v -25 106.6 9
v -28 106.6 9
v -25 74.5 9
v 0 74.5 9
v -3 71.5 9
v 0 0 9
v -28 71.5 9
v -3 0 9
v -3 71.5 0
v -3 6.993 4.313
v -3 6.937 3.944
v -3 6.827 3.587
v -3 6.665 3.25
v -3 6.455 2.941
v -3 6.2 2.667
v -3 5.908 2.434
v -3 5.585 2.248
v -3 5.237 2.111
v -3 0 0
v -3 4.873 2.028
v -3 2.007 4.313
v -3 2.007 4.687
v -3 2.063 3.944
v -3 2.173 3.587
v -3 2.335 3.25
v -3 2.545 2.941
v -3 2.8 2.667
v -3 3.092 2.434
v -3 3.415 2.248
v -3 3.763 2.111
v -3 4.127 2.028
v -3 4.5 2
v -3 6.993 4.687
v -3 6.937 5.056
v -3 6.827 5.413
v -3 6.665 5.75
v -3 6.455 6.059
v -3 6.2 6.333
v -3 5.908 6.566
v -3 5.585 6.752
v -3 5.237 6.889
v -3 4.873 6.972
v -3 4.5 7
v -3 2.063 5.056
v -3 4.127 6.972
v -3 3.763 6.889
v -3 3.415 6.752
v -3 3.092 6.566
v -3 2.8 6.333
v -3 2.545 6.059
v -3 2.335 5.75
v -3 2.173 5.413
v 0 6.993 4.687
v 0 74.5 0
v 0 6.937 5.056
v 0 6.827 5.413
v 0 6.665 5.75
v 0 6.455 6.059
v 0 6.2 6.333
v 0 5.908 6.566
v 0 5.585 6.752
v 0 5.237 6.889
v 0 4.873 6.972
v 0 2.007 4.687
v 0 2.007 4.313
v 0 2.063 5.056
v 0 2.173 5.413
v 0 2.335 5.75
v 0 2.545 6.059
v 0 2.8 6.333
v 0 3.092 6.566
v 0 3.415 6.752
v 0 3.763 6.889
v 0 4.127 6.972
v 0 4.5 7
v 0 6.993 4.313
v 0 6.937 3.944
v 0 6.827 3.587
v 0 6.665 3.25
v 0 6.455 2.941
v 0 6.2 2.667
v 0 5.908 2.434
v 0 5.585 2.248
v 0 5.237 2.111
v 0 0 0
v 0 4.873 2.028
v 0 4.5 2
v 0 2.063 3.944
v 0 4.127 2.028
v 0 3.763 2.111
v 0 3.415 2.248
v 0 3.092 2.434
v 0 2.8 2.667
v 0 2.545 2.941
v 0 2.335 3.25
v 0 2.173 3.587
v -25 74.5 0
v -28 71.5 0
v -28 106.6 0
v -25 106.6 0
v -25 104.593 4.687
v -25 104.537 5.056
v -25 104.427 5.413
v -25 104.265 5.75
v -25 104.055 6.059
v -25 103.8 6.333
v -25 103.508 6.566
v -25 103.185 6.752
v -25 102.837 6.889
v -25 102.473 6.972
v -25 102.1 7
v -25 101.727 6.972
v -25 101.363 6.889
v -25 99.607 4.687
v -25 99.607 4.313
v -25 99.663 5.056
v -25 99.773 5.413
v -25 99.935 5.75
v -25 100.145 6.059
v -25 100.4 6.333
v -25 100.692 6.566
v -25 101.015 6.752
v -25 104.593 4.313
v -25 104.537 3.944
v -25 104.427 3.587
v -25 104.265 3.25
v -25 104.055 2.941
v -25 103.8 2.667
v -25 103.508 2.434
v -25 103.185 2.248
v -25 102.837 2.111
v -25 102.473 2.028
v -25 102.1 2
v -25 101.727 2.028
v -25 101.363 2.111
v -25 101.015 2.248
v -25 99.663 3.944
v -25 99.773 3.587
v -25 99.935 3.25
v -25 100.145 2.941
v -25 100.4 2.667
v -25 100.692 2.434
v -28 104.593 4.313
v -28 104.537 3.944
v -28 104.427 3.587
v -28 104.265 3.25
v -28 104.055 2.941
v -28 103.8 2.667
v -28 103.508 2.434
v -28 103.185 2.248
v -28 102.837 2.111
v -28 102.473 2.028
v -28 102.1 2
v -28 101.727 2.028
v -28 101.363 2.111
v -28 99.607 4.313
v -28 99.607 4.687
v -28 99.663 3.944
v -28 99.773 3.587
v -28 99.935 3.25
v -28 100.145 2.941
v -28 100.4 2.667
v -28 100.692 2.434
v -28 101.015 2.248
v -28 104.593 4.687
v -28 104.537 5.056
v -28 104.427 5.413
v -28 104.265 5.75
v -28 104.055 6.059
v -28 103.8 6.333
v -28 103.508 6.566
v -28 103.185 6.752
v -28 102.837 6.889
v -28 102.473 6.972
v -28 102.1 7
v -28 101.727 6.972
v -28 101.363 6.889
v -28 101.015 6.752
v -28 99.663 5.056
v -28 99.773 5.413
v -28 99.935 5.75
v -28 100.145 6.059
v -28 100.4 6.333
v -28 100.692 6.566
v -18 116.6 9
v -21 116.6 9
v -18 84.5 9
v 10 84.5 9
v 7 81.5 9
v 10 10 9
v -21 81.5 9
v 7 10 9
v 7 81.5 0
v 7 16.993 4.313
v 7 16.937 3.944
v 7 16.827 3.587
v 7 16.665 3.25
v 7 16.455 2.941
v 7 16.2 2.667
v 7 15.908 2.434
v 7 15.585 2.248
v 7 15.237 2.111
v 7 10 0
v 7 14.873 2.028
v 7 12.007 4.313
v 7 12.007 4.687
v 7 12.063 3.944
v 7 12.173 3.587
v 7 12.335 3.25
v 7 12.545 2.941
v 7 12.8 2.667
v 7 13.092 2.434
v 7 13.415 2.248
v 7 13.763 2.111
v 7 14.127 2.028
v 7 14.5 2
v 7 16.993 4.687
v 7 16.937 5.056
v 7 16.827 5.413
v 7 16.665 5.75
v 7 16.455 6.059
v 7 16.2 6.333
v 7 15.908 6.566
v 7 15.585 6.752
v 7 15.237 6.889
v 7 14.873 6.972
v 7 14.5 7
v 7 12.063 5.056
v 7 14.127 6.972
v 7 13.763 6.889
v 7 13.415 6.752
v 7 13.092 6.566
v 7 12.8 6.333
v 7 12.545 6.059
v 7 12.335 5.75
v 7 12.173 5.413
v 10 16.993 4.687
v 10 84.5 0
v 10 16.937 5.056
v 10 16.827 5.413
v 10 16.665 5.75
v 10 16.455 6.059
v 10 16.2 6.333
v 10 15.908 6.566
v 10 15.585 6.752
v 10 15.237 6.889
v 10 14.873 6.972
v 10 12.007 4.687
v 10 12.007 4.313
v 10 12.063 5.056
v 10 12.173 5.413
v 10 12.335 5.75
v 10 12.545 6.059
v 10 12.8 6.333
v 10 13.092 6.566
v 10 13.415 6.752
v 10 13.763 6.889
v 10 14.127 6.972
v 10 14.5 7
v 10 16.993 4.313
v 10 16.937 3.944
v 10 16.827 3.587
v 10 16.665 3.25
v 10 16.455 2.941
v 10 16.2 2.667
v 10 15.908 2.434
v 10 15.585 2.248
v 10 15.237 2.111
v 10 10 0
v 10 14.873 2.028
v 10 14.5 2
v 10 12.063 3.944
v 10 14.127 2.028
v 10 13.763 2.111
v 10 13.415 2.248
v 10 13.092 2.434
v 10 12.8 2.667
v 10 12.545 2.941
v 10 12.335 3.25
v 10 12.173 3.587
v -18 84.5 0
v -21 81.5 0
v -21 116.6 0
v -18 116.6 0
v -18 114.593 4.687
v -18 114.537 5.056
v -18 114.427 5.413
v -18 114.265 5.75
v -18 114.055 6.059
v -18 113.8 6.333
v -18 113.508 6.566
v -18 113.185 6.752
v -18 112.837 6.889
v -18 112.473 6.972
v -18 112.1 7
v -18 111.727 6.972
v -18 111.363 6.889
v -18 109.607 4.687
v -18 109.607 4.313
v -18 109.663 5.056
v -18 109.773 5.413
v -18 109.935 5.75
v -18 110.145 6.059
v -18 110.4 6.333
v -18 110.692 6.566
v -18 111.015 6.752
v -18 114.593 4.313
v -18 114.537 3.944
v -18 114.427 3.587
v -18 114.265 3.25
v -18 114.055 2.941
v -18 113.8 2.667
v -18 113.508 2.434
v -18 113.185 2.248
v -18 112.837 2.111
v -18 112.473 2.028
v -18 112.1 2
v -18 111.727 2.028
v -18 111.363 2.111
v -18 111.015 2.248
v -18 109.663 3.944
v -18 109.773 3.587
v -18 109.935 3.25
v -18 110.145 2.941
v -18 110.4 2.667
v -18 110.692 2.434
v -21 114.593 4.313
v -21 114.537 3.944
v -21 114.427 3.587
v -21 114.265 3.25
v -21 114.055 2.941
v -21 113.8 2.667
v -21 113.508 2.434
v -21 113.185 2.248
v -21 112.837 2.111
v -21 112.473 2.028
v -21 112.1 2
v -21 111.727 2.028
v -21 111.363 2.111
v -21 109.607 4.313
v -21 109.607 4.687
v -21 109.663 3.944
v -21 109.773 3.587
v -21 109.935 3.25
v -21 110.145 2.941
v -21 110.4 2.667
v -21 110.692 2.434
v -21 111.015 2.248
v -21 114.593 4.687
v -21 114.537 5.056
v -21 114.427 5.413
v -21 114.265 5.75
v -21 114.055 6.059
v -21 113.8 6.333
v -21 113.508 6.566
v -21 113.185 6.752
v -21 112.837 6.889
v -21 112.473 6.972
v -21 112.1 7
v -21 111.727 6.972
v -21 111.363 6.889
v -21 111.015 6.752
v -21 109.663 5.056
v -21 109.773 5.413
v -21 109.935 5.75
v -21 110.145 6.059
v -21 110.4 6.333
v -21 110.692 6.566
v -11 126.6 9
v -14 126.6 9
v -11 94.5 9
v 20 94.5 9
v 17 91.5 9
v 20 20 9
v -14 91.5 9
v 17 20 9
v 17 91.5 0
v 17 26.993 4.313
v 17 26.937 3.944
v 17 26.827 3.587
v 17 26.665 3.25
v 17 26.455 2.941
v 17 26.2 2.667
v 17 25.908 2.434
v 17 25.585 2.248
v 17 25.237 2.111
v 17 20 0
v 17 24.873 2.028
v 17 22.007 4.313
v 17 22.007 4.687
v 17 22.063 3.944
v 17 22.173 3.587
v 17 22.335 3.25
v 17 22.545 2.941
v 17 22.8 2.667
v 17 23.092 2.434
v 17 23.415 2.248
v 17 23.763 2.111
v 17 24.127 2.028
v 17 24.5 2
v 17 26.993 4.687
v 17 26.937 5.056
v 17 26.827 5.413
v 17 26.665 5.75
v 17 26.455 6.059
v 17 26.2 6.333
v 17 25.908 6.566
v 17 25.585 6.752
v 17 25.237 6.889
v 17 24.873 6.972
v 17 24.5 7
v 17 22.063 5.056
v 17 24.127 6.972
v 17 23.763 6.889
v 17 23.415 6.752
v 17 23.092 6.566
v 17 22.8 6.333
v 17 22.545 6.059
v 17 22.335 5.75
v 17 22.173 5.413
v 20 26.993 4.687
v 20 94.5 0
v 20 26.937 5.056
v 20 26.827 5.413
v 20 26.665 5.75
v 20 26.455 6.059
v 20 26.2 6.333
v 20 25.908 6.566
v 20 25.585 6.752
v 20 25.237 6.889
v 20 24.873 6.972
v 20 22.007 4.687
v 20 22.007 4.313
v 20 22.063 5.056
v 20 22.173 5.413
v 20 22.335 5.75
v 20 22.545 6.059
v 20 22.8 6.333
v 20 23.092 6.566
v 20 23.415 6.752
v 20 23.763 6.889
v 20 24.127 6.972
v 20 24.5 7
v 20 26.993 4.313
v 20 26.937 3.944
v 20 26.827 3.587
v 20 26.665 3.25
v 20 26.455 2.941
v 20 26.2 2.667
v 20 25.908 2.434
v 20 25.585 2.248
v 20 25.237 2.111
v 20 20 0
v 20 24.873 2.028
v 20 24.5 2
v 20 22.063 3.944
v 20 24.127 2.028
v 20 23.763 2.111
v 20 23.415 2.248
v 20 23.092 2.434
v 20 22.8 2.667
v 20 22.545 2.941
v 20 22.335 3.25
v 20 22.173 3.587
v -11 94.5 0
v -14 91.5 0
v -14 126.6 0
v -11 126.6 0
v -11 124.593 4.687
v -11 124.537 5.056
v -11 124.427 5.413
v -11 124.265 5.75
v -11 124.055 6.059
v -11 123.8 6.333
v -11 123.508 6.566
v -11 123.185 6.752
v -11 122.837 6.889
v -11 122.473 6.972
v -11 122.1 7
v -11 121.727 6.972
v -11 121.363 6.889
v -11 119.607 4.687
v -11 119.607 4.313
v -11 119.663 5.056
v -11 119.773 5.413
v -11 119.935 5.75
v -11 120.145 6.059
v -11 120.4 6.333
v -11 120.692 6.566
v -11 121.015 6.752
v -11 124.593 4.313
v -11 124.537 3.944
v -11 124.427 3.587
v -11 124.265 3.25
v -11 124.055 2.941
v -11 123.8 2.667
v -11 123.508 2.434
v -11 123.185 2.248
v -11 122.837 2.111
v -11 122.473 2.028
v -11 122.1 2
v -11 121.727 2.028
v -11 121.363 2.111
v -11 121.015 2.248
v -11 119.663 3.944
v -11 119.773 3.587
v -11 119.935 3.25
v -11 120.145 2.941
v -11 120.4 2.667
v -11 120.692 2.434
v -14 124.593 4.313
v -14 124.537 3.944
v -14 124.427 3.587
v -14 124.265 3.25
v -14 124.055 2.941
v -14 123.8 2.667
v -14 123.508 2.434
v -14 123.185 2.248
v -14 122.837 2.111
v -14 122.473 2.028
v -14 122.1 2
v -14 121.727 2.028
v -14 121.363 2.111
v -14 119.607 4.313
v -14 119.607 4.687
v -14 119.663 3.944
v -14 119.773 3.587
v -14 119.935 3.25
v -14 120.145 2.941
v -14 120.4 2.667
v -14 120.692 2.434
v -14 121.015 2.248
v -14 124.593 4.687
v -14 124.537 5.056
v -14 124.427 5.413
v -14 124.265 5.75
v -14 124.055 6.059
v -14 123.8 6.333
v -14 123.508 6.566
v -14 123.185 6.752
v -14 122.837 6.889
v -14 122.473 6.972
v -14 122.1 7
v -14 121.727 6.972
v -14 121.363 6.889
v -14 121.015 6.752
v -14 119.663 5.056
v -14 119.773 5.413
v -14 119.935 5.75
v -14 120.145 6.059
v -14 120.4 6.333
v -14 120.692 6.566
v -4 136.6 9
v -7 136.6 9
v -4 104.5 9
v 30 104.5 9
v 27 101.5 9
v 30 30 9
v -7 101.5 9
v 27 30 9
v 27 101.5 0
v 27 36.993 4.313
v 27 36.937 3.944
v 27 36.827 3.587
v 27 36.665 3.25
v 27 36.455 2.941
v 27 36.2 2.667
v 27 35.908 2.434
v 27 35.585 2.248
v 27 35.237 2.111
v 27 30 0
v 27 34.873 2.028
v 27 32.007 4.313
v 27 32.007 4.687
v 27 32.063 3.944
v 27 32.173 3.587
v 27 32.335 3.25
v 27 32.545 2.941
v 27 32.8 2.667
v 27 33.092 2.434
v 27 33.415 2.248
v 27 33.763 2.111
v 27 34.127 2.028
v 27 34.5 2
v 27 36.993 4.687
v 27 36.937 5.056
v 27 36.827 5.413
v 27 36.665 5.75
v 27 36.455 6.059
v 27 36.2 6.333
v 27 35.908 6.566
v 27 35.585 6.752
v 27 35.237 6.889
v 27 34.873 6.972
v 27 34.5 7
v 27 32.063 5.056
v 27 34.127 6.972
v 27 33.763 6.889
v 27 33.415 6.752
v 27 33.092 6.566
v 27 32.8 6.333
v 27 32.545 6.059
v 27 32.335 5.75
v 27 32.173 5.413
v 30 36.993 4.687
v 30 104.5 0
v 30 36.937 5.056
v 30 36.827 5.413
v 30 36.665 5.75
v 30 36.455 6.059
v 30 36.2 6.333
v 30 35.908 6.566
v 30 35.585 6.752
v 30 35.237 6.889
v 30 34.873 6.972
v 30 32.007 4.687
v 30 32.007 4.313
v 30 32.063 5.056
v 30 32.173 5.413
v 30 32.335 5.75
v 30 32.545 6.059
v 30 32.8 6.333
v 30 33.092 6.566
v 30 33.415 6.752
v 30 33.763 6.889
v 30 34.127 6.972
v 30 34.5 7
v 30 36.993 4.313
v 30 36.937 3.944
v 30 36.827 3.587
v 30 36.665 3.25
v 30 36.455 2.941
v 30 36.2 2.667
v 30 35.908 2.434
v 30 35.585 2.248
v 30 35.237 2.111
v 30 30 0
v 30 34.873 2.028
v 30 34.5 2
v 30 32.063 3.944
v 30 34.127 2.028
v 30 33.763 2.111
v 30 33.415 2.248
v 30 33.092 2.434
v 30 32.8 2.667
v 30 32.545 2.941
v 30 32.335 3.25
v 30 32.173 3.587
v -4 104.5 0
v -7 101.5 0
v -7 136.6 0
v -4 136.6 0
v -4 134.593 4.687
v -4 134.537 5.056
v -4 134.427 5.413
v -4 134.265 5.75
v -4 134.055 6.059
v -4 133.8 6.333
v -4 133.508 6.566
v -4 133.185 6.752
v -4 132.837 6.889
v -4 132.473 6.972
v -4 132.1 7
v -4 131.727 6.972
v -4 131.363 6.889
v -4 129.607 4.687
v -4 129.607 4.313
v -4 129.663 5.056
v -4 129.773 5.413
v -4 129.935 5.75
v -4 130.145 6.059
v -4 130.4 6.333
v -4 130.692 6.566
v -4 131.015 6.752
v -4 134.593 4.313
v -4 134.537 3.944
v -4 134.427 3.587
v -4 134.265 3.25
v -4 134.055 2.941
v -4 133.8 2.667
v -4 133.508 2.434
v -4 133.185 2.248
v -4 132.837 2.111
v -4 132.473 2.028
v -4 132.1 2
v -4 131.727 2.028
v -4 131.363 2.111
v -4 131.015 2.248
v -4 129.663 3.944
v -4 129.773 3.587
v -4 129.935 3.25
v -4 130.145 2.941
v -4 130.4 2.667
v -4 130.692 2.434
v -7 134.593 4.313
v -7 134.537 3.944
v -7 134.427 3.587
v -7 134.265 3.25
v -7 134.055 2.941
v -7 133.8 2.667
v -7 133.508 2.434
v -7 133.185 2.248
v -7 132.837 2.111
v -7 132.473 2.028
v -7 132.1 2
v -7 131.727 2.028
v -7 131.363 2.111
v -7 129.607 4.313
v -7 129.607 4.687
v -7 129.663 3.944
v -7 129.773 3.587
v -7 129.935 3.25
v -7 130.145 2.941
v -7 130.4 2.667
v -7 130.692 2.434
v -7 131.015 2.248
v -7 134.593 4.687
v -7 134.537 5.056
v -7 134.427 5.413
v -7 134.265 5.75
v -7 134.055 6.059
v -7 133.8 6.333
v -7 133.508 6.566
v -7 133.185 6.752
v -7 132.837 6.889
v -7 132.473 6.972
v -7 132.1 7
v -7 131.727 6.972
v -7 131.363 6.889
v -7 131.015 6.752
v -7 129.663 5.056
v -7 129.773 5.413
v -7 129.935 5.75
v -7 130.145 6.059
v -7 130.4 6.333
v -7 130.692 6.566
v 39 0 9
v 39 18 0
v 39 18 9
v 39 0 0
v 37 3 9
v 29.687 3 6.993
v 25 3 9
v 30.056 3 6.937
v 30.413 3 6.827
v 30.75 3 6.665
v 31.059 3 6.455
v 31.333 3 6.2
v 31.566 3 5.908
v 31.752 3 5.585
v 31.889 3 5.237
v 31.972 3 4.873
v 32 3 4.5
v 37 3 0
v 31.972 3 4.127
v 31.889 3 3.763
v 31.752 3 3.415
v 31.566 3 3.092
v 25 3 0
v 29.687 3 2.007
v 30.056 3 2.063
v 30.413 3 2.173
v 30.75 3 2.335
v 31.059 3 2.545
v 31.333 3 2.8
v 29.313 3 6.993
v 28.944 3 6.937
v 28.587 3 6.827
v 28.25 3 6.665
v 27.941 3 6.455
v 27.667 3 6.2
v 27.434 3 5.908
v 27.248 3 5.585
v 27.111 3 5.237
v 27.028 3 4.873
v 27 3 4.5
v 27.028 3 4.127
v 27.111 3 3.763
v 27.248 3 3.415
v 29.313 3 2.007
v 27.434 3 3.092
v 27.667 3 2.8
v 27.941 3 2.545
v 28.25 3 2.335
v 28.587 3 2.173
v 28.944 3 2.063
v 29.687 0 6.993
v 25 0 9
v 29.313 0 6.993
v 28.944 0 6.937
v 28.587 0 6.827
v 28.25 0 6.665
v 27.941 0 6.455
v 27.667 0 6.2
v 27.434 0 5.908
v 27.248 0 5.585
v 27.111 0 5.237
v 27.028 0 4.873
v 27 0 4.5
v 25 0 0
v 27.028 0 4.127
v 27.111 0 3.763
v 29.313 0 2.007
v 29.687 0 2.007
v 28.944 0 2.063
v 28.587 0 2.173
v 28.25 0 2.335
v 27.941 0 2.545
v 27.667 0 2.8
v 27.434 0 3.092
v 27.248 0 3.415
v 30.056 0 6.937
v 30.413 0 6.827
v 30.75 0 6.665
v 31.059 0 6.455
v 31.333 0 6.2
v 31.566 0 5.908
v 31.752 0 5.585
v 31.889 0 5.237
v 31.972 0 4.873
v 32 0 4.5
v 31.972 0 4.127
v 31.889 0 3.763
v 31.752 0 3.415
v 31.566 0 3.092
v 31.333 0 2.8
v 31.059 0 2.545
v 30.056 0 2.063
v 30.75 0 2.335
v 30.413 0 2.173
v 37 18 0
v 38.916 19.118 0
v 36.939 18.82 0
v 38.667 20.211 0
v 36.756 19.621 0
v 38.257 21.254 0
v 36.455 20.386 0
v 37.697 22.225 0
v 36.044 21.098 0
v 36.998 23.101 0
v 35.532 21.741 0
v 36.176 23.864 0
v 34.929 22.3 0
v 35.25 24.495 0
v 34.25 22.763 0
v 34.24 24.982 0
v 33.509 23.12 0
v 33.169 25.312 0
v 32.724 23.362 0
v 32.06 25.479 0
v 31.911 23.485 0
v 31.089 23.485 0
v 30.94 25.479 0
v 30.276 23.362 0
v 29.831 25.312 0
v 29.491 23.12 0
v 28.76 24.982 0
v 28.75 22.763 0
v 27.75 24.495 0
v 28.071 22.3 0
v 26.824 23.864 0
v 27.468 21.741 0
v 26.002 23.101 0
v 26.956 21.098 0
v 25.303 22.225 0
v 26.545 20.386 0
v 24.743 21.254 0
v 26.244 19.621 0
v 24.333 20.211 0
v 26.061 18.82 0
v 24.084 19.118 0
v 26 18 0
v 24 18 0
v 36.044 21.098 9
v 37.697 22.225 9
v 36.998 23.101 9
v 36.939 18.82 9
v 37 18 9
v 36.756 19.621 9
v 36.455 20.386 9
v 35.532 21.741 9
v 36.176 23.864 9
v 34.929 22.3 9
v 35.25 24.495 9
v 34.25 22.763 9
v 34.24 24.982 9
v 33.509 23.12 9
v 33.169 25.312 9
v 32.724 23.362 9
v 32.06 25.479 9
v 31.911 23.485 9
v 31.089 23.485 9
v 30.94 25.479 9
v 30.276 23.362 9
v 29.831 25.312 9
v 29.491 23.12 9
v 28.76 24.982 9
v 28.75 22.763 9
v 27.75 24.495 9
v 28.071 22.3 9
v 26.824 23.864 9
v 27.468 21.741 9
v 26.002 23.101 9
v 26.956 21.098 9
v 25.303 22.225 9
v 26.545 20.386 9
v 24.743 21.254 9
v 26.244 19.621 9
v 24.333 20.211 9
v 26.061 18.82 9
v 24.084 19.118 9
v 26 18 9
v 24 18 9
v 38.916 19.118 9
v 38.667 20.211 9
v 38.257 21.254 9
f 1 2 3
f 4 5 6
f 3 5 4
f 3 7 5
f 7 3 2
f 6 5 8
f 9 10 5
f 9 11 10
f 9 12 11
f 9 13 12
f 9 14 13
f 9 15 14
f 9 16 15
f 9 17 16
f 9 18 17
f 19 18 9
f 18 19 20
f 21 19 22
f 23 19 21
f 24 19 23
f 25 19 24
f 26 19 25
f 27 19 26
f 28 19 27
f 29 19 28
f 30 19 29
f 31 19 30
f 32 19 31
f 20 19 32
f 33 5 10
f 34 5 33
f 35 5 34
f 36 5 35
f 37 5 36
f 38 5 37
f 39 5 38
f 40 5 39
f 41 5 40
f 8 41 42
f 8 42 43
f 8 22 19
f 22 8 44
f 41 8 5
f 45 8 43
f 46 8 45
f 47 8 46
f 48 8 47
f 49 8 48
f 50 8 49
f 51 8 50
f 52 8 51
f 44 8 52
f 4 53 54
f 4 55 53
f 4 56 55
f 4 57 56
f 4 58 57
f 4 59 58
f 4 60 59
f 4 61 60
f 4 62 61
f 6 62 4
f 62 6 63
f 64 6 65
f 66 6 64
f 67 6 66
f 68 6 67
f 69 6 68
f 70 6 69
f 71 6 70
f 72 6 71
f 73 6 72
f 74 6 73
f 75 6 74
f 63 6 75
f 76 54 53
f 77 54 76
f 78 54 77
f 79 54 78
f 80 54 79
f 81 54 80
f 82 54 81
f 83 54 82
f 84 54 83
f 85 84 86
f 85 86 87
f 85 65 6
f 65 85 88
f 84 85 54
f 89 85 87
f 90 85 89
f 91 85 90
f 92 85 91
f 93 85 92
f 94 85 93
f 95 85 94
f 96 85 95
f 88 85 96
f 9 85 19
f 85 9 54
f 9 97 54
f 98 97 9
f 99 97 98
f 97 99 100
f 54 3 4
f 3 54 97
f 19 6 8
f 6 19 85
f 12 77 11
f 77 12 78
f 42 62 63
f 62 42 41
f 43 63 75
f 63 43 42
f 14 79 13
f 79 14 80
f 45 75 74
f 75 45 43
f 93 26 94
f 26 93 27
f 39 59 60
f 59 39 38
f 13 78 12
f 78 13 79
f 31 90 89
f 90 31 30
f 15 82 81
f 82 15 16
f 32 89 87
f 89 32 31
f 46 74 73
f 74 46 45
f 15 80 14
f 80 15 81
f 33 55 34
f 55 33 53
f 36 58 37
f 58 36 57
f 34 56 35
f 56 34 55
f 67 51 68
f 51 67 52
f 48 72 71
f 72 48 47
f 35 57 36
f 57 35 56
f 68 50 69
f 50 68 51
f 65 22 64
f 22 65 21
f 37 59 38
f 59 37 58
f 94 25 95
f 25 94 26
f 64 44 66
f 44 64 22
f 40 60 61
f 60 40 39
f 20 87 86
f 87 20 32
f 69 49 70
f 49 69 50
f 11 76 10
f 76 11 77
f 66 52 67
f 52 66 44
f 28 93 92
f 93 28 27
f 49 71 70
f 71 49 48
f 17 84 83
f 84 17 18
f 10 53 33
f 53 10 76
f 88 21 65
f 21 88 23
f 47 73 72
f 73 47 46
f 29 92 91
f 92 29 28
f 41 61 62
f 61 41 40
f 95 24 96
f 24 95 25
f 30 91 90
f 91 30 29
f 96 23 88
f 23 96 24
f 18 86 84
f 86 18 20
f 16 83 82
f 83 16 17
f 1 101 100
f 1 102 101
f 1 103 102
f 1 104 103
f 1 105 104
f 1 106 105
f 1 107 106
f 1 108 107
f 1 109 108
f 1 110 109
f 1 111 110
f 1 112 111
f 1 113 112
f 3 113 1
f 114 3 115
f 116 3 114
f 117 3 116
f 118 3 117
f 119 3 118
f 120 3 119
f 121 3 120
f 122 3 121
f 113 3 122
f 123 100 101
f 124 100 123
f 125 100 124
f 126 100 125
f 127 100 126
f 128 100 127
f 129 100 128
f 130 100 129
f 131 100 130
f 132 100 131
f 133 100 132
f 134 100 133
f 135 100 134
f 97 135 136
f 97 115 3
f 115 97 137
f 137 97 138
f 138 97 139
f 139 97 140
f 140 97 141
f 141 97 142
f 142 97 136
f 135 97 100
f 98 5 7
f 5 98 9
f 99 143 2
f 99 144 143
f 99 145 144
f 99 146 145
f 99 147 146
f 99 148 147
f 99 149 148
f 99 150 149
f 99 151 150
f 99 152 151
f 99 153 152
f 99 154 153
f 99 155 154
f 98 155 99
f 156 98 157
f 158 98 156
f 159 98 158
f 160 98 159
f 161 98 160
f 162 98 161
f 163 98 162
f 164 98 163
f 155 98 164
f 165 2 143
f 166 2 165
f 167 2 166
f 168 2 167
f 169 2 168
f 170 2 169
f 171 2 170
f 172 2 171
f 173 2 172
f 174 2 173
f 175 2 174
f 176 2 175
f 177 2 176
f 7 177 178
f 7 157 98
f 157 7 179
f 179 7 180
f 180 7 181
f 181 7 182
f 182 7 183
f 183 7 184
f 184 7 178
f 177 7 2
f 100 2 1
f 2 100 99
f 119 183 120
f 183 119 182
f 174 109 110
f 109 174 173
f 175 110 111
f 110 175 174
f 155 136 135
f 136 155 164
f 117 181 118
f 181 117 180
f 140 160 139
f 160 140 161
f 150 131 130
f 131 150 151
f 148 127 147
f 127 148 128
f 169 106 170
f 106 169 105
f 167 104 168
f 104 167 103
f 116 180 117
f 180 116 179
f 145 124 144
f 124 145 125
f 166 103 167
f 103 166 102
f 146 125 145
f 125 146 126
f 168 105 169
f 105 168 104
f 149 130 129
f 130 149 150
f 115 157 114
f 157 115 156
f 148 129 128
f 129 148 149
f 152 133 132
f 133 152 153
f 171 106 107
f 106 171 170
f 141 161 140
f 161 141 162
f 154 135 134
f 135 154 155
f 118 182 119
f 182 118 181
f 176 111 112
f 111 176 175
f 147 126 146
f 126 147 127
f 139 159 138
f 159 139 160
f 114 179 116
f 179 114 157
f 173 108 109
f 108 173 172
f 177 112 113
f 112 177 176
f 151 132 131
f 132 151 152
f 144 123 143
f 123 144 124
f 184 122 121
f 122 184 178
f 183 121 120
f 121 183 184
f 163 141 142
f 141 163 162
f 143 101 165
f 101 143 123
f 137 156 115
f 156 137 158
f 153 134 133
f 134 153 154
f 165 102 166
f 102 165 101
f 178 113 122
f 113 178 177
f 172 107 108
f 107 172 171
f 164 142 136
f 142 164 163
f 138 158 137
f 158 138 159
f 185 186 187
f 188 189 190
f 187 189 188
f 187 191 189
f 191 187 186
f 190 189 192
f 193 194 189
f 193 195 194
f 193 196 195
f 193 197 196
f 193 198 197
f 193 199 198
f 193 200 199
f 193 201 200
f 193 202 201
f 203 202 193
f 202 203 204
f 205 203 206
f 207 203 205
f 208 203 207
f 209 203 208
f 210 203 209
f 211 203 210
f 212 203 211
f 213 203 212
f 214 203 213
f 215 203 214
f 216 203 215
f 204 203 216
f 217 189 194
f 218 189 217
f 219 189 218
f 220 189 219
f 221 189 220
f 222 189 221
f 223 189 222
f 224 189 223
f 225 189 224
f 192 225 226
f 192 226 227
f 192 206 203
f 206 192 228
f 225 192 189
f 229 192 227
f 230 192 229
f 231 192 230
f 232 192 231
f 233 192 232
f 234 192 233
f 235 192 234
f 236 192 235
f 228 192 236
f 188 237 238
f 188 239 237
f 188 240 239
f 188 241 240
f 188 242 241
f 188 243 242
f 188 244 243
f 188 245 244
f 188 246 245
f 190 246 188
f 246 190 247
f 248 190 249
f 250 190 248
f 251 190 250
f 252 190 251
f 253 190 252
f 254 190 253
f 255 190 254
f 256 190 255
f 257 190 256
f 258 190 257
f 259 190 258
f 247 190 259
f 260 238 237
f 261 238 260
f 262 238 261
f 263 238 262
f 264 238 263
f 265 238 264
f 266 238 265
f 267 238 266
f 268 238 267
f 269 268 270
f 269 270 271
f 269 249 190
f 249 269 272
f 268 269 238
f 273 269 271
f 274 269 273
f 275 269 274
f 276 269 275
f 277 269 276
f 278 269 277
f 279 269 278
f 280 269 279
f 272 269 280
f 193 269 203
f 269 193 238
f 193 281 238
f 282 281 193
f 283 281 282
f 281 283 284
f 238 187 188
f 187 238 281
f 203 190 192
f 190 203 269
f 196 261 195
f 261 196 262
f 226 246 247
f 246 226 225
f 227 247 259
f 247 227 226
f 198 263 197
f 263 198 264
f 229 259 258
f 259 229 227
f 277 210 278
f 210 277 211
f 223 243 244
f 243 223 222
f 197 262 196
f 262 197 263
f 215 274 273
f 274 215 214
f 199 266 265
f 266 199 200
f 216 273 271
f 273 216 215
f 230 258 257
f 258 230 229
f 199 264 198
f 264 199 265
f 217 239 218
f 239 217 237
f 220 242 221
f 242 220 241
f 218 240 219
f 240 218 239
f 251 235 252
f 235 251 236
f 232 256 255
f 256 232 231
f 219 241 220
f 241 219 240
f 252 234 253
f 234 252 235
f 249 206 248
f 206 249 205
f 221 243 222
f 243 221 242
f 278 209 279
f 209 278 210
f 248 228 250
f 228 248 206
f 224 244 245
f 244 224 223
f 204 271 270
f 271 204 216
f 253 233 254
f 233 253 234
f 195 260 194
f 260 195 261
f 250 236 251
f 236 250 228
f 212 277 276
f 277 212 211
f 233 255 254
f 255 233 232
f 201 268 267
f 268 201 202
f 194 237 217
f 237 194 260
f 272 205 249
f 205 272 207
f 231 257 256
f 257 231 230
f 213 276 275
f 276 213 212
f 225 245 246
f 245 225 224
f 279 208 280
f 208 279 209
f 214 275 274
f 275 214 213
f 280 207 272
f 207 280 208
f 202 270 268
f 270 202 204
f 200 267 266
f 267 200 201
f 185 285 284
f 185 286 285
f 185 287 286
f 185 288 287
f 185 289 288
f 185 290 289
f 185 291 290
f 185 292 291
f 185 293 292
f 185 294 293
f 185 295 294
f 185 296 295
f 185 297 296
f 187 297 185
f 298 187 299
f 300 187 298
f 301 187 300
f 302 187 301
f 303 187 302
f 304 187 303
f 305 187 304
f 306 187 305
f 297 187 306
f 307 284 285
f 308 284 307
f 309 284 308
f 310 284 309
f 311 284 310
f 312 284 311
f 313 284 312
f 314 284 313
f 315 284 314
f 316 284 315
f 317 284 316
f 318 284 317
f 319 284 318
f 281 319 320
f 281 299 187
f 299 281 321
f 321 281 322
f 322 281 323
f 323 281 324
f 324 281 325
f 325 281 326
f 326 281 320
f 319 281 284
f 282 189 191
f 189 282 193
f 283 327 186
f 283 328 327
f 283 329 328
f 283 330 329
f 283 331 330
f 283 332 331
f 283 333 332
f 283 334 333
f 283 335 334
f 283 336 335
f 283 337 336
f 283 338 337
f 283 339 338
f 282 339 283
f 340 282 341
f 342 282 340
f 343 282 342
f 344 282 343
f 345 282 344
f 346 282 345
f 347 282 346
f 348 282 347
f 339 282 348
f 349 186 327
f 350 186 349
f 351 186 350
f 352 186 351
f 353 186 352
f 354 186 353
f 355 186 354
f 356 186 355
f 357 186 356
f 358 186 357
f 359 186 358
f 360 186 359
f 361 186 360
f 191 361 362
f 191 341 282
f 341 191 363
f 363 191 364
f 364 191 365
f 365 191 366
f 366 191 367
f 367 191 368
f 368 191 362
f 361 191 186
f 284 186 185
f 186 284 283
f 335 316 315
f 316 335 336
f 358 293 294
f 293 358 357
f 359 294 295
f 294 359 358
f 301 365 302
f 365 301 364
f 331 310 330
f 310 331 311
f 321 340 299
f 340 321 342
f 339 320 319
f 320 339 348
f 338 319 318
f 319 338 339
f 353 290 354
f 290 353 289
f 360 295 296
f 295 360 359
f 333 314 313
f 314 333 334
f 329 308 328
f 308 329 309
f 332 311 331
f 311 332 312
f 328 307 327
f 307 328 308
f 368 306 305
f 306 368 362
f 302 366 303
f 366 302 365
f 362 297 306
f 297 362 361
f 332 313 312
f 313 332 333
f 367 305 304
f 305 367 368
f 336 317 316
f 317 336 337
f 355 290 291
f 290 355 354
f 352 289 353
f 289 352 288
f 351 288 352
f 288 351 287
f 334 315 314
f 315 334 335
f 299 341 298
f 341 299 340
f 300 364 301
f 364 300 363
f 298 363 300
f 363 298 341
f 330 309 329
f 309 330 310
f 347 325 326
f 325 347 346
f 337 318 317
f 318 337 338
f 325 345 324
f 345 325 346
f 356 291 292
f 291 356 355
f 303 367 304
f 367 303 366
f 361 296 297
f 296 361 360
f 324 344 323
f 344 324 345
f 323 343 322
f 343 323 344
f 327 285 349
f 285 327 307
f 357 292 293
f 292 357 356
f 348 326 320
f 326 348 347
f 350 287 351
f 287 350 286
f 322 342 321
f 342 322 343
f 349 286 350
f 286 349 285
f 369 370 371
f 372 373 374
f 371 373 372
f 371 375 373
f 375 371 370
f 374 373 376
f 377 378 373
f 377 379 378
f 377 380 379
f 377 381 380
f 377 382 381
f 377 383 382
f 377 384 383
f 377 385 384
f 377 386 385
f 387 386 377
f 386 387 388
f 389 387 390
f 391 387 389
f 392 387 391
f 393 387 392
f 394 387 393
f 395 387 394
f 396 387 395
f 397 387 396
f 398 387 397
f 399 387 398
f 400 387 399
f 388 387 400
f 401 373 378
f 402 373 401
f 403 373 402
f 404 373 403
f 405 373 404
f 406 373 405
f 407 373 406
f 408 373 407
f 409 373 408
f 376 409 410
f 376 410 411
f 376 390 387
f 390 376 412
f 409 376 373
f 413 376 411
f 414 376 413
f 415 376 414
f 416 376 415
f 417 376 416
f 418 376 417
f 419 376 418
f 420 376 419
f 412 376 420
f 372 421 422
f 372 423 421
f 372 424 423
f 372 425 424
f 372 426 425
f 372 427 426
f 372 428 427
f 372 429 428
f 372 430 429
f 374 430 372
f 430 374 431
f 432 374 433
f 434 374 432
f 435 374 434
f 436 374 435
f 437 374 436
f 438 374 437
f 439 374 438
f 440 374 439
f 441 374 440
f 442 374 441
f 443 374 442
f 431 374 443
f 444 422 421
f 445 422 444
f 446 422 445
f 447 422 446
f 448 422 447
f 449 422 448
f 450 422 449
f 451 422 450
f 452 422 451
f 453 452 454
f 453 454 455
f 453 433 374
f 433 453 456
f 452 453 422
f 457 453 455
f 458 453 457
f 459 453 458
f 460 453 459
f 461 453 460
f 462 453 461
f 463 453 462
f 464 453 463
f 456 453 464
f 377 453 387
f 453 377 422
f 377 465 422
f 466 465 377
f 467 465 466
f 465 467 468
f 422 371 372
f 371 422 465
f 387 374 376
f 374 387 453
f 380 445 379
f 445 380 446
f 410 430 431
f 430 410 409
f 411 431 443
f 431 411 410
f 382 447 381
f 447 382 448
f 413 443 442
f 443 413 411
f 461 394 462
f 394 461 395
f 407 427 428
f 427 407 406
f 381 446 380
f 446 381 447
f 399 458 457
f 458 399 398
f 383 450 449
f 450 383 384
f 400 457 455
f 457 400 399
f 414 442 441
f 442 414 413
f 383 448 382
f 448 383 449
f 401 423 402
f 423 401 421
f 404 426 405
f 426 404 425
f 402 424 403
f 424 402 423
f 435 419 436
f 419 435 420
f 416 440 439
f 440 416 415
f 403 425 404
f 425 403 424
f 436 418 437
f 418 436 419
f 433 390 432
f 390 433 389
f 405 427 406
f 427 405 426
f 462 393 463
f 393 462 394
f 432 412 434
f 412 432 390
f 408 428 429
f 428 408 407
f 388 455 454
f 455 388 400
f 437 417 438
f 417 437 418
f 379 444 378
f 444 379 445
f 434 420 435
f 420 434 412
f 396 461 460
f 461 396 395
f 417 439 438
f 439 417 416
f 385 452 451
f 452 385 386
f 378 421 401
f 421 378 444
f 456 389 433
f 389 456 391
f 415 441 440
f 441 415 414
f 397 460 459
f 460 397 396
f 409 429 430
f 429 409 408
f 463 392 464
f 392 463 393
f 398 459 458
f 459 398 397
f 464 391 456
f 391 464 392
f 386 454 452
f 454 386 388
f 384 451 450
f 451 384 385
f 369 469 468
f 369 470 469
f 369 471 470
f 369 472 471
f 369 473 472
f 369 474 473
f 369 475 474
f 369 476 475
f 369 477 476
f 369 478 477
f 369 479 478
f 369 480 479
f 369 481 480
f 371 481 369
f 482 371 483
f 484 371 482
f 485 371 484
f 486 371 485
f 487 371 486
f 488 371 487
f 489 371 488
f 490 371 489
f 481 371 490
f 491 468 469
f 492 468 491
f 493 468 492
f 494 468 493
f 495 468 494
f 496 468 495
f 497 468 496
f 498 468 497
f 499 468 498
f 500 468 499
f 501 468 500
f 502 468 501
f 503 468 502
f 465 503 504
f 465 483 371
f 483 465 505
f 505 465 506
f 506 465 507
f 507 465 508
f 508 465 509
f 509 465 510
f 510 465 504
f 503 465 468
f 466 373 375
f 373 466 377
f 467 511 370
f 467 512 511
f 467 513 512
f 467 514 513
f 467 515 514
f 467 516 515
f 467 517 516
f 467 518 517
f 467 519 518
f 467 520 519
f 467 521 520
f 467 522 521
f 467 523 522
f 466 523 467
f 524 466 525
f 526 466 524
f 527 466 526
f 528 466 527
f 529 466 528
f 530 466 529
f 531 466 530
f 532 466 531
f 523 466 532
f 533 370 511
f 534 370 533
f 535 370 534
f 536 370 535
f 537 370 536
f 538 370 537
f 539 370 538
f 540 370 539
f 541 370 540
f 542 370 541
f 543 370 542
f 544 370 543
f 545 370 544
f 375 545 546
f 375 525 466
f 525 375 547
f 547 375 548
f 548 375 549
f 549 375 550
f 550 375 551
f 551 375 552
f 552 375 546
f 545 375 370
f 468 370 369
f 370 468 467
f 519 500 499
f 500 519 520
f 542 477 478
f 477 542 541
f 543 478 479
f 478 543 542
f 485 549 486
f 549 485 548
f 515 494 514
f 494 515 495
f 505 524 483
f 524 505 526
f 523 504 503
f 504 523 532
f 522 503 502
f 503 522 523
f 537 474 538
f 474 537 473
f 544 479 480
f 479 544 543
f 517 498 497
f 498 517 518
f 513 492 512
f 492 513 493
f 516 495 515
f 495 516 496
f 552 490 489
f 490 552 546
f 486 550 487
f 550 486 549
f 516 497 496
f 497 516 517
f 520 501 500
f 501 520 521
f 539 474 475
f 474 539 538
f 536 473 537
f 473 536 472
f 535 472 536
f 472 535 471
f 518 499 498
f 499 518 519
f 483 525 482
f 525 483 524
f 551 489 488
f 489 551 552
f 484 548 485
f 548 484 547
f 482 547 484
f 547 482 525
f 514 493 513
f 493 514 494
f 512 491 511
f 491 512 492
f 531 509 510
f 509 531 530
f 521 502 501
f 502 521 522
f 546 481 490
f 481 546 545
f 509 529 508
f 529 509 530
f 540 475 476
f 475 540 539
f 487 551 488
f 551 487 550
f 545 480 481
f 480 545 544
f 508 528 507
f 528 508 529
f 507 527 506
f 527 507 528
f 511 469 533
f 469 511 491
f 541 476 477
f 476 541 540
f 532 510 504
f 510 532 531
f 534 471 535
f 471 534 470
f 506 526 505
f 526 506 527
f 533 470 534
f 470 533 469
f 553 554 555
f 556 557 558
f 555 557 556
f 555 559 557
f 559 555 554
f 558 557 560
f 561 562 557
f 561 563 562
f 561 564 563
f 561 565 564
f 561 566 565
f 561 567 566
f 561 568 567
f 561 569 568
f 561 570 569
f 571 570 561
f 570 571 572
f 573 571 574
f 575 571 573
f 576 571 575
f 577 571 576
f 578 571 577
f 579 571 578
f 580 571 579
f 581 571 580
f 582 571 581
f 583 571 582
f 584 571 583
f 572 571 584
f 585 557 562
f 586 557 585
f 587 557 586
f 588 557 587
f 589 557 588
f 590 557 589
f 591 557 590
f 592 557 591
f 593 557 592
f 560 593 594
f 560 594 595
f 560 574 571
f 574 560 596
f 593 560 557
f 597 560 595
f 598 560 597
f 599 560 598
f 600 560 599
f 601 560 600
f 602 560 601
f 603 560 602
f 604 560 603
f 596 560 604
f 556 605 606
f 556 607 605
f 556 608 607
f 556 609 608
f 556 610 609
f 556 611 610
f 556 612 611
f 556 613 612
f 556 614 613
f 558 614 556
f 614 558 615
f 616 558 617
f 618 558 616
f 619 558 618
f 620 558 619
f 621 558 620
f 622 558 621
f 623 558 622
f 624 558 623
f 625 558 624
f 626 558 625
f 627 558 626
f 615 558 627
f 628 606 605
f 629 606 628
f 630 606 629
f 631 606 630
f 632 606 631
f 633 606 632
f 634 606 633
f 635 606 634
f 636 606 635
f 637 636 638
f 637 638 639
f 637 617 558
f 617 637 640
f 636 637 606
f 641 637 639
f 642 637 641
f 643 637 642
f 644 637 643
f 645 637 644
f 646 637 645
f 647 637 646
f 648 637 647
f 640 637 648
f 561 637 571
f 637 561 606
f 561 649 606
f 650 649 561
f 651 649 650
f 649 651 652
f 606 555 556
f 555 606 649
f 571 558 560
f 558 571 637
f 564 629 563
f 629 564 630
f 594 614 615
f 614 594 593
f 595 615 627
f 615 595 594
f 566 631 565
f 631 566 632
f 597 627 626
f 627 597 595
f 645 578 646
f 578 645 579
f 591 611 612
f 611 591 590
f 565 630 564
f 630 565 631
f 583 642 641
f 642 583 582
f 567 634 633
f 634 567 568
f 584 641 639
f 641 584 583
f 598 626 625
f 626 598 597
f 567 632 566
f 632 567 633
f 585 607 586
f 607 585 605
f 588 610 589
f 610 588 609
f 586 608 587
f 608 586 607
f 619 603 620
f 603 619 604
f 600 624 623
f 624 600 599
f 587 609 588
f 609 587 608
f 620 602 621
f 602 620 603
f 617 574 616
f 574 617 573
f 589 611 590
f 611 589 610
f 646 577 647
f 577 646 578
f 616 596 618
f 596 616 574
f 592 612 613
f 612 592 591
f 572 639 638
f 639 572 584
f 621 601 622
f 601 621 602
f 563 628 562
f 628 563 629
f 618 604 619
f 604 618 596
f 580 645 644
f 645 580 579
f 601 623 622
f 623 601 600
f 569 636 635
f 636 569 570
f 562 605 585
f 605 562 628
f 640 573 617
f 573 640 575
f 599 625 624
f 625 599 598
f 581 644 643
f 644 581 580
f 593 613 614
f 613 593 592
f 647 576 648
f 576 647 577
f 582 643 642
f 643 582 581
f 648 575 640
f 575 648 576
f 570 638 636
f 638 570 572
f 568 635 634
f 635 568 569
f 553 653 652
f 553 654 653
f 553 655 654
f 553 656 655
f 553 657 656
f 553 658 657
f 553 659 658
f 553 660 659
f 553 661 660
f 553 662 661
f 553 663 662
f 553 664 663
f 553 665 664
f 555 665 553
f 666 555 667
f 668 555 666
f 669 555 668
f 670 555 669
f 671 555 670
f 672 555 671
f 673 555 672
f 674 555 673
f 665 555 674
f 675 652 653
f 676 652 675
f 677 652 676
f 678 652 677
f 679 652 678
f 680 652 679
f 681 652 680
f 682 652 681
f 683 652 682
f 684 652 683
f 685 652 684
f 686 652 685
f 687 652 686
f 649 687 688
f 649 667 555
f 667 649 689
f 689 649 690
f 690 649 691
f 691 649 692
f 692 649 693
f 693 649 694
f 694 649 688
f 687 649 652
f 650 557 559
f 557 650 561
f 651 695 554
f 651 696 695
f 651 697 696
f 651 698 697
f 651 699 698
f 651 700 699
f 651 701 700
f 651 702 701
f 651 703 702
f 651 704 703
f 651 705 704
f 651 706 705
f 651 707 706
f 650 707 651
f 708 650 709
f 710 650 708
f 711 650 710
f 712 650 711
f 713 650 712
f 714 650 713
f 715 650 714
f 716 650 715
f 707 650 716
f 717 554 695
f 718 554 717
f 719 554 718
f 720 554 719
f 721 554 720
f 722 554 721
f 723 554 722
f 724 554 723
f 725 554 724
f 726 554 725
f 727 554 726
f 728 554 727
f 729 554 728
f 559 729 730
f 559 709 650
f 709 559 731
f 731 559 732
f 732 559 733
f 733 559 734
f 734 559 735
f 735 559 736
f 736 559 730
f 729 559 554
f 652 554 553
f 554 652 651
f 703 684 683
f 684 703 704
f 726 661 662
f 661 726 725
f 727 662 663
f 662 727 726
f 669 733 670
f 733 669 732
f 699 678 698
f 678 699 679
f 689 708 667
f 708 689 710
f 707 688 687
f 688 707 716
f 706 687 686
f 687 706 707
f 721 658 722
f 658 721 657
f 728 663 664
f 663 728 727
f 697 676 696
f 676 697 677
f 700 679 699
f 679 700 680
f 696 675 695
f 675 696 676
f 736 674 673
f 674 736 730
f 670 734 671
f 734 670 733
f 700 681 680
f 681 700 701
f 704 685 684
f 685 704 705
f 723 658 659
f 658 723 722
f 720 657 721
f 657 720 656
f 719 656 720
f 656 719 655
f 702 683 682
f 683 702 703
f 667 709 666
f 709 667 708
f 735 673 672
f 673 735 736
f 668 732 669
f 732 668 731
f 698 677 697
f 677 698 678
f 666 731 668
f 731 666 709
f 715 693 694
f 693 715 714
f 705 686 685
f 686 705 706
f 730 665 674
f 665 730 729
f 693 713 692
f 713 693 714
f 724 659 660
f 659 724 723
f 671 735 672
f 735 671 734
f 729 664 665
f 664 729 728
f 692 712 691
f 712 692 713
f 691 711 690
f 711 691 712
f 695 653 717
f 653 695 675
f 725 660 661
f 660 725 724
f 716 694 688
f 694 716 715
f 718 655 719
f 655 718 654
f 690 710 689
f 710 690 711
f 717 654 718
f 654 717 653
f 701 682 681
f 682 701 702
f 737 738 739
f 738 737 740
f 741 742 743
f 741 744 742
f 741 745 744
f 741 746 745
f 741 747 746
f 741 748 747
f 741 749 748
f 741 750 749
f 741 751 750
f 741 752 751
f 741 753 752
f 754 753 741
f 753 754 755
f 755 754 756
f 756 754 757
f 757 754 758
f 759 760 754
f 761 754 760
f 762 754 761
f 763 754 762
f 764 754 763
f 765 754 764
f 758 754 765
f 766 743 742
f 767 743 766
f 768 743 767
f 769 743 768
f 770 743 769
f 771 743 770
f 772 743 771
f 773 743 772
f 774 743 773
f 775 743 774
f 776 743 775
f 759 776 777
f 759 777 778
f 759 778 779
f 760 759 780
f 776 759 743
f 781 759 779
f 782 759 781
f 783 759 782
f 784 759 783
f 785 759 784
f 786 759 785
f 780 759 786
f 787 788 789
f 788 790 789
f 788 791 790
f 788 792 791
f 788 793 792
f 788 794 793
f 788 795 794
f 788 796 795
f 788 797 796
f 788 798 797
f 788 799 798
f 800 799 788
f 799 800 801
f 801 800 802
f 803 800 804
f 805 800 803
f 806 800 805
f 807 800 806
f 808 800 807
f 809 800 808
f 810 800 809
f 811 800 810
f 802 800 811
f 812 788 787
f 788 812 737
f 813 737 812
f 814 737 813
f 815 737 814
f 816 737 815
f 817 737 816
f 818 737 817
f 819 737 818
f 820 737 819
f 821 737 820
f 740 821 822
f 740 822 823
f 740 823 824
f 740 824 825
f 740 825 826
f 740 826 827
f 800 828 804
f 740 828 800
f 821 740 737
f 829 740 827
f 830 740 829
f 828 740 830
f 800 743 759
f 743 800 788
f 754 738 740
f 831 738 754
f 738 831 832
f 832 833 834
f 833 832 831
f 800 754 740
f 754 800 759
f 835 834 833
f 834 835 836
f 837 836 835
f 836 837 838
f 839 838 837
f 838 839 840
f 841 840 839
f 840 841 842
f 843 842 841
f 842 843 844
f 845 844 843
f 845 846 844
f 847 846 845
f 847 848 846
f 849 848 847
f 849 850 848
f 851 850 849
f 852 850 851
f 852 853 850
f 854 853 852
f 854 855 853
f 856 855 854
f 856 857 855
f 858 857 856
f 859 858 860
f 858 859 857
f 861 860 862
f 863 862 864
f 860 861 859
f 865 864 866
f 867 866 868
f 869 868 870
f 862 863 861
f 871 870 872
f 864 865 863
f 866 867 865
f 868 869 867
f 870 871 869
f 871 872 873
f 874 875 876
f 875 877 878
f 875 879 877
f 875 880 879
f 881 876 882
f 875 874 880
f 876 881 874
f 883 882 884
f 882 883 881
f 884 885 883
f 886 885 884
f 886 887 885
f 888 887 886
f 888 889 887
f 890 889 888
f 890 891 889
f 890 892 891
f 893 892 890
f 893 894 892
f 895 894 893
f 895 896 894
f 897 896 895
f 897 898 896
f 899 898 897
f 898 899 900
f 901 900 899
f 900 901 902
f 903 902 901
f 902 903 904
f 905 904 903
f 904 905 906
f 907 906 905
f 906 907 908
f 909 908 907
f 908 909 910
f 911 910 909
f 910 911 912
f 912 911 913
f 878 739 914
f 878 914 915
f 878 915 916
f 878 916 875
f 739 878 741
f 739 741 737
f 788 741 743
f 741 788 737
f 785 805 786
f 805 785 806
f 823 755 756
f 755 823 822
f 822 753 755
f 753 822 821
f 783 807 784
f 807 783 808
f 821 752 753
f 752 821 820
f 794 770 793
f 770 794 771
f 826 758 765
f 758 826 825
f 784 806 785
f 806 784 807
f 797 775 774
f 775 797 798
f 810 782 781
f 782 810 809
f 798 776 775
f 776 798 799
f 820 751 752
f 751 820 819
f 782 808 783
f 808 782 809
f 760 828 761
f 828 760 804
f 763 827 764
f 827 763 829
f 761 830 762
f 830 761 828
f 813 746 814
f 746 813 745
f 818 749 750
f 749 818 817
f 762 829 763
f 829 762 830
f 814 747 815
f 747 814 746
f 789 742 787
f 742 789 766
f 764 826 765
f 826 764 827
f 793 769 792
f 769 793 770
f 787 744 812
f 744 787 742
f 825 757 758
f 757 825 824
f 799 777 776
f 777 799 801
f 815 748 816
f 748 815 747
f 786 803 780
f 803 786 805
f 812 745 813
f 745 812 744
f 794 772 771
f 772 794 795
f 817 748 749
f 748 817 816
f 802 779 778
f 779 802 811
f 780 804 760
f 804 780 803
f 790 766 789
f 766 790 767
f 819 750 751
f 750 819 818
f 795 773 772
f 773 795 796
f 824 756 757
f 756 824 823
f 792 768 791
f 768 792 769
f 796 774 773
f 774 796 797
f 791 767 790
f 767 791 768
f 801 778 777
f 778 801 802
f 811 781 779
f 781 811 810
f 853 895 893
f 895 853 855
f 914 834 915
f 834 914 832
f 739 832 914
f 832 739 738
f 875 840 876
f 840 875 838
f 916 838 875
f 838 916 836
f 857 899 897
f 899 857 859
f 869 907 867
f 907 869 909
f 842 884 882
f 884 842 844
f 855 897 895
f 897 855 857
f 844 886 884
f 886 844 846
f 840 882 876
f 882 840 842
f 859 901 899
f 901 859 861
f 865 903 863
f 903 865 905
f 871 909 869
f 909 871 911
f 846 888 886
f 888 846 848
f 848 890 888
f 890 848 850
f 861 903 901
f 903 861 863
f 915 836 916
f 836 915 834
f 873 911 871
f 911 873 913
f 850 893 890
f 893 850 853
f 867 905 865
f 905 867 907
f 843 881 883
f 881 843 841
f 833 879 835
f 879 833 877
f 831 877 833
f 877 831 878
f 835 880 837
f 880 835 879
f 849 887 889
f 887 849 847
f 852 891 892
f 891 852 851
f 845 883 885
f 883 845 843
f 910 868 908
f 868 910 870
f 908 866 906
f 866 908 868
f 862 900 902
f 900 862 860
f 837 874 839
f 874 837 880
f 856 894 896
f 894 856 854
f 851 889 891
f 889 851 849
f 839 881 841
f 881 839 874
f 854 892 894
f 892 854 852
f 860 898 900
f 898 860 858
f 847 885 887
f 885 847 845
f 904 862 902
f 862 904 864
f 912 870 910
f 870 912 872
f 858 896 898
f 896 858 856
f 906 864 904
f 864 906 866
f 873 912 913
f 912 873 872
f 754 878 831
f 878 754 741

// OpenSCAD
plate = 250;
mount_dist = 58;
trans_width = 45;
trans_depth = 30;
trans_height = 20;
hole = 5.0;
hole_dist = 2;
arm_len = 70 + (hole / 2) + hole_dist;
height = 3;
width = 9;
arm_height = 25;
top_arm_len = 35.1;

hook_width_add = 3;
hook_dia = 15;
hook_height = width;
hook_size = 2;
hook_off = 15;

print_dist = 10;
print = true;

$fn = 42;

module mount(layer) {
    difference() {
        cube([width, arm_len, height]);
        
        translate([width / 2, hole / 2 + hole_dist, -1])
        cylinder(d = hole, h = height + 2);
    }
    
    difference() {
        translate([0, arm_len - height, 0]) {
            cube([width, height, arm_height + (layer * height)]);
            
            translate([0, 0, arm_height + (layer * height)])
            cube([width, top_arm_len, height]);
        }
    
        translate([0, arm_len - height, 0])
        translate([0, 0, arm_height + (layer * height)])
        translate([width / 2, top_arm_len - 4.5, -4 * height + 2])
        cylinder(d = hole, h = (height * 4) + 2);
    }
}

module circles() {
    translate([-hook_dia / 2 + hook_size, hook_height, 0])
    rotate([90, 0, -0])
    difference() {
        cylinder(d = hook_dia, h = hook_height);
        translate([0, 0, -1])
        cylinder(d = hook_dia - hook_size * 2, h = hook_height + 2);
        
        translate([-hook_dia / 2 - 1, -hook_dia, -1])
        cube([hook_dia + 2, hook_dia, hook_height + 2]);
    }
}

module hook() {
    difference() {
        cube([width + hook_size + hook_width_add, width, height]);
        
        translate([width / 2, width / 2, -1])
        cylinder(d = hole, h = height + 2);
    }
    
    translate([width + hook_width_add, width - hook_height, height])
    cube([hook_size, hook_height, hook_off]);
    
    translate([width + hook_width_add, width - hook_height, height + hook_off])
    circles();
}

module print_arrangement() {
    rotate([0, -90, 0])
    mount(0);
    
    translate([print_dist, 10, 0])
    rotate([0, -90, 0])
    mount(1);
    
    translate([print_dist * 2, 20, 0])
    rotate([0, -90, 0])
    mount(2);
    
    translate([print_dist * 3, 30, 0])
    rotate([0, -90, 0])
    mount(3);
    
    translate([25, 0, width])
    rotate([-90, 0, 0])
    hook();
}

module preview_arrangement() {
    // plate
    translate([-plate / 2, -plate / 2, 0])
    union() {
        color("purple")
        cube([plate, plate, 1]);
        
        color("green")
        translate([mount_dist, mount_dist, 1])
        cylinder(d = hole, h = height * 2);
        
        color("green")
        translate([plate - mount_dist, mount_dist, 1])
        cylinder(d = hole, h = height * 2);
        
        color("green")
        translate([mount_dist, plate - mount_dist, 1])
        cylinder(d = hole, h = height * 2);
        
        color("green")
        translate([plate - mount_dist, plate - mount_dist, 1])
        cylinder(d = hole, h = height * 2);
        
        color("orange")
    translate([(plate - trans_width) / 2, (plate - trans_depth) / 2, 0])
        cube([trans_width, trans_depth, trans_height]);
    }

    // arms
    for (i = [0 : 3]) {
        rotate([0, 0, 45 + (90 * i)])
        translate([-width / 2, -arm_len - 27.6, 0])
        mount(i);
    }
    
    translate([-4.5, -4.5, 37])
    hook();
}

if (print) {
    print_arrangement();
} else {
    preview_arrangement();
}
